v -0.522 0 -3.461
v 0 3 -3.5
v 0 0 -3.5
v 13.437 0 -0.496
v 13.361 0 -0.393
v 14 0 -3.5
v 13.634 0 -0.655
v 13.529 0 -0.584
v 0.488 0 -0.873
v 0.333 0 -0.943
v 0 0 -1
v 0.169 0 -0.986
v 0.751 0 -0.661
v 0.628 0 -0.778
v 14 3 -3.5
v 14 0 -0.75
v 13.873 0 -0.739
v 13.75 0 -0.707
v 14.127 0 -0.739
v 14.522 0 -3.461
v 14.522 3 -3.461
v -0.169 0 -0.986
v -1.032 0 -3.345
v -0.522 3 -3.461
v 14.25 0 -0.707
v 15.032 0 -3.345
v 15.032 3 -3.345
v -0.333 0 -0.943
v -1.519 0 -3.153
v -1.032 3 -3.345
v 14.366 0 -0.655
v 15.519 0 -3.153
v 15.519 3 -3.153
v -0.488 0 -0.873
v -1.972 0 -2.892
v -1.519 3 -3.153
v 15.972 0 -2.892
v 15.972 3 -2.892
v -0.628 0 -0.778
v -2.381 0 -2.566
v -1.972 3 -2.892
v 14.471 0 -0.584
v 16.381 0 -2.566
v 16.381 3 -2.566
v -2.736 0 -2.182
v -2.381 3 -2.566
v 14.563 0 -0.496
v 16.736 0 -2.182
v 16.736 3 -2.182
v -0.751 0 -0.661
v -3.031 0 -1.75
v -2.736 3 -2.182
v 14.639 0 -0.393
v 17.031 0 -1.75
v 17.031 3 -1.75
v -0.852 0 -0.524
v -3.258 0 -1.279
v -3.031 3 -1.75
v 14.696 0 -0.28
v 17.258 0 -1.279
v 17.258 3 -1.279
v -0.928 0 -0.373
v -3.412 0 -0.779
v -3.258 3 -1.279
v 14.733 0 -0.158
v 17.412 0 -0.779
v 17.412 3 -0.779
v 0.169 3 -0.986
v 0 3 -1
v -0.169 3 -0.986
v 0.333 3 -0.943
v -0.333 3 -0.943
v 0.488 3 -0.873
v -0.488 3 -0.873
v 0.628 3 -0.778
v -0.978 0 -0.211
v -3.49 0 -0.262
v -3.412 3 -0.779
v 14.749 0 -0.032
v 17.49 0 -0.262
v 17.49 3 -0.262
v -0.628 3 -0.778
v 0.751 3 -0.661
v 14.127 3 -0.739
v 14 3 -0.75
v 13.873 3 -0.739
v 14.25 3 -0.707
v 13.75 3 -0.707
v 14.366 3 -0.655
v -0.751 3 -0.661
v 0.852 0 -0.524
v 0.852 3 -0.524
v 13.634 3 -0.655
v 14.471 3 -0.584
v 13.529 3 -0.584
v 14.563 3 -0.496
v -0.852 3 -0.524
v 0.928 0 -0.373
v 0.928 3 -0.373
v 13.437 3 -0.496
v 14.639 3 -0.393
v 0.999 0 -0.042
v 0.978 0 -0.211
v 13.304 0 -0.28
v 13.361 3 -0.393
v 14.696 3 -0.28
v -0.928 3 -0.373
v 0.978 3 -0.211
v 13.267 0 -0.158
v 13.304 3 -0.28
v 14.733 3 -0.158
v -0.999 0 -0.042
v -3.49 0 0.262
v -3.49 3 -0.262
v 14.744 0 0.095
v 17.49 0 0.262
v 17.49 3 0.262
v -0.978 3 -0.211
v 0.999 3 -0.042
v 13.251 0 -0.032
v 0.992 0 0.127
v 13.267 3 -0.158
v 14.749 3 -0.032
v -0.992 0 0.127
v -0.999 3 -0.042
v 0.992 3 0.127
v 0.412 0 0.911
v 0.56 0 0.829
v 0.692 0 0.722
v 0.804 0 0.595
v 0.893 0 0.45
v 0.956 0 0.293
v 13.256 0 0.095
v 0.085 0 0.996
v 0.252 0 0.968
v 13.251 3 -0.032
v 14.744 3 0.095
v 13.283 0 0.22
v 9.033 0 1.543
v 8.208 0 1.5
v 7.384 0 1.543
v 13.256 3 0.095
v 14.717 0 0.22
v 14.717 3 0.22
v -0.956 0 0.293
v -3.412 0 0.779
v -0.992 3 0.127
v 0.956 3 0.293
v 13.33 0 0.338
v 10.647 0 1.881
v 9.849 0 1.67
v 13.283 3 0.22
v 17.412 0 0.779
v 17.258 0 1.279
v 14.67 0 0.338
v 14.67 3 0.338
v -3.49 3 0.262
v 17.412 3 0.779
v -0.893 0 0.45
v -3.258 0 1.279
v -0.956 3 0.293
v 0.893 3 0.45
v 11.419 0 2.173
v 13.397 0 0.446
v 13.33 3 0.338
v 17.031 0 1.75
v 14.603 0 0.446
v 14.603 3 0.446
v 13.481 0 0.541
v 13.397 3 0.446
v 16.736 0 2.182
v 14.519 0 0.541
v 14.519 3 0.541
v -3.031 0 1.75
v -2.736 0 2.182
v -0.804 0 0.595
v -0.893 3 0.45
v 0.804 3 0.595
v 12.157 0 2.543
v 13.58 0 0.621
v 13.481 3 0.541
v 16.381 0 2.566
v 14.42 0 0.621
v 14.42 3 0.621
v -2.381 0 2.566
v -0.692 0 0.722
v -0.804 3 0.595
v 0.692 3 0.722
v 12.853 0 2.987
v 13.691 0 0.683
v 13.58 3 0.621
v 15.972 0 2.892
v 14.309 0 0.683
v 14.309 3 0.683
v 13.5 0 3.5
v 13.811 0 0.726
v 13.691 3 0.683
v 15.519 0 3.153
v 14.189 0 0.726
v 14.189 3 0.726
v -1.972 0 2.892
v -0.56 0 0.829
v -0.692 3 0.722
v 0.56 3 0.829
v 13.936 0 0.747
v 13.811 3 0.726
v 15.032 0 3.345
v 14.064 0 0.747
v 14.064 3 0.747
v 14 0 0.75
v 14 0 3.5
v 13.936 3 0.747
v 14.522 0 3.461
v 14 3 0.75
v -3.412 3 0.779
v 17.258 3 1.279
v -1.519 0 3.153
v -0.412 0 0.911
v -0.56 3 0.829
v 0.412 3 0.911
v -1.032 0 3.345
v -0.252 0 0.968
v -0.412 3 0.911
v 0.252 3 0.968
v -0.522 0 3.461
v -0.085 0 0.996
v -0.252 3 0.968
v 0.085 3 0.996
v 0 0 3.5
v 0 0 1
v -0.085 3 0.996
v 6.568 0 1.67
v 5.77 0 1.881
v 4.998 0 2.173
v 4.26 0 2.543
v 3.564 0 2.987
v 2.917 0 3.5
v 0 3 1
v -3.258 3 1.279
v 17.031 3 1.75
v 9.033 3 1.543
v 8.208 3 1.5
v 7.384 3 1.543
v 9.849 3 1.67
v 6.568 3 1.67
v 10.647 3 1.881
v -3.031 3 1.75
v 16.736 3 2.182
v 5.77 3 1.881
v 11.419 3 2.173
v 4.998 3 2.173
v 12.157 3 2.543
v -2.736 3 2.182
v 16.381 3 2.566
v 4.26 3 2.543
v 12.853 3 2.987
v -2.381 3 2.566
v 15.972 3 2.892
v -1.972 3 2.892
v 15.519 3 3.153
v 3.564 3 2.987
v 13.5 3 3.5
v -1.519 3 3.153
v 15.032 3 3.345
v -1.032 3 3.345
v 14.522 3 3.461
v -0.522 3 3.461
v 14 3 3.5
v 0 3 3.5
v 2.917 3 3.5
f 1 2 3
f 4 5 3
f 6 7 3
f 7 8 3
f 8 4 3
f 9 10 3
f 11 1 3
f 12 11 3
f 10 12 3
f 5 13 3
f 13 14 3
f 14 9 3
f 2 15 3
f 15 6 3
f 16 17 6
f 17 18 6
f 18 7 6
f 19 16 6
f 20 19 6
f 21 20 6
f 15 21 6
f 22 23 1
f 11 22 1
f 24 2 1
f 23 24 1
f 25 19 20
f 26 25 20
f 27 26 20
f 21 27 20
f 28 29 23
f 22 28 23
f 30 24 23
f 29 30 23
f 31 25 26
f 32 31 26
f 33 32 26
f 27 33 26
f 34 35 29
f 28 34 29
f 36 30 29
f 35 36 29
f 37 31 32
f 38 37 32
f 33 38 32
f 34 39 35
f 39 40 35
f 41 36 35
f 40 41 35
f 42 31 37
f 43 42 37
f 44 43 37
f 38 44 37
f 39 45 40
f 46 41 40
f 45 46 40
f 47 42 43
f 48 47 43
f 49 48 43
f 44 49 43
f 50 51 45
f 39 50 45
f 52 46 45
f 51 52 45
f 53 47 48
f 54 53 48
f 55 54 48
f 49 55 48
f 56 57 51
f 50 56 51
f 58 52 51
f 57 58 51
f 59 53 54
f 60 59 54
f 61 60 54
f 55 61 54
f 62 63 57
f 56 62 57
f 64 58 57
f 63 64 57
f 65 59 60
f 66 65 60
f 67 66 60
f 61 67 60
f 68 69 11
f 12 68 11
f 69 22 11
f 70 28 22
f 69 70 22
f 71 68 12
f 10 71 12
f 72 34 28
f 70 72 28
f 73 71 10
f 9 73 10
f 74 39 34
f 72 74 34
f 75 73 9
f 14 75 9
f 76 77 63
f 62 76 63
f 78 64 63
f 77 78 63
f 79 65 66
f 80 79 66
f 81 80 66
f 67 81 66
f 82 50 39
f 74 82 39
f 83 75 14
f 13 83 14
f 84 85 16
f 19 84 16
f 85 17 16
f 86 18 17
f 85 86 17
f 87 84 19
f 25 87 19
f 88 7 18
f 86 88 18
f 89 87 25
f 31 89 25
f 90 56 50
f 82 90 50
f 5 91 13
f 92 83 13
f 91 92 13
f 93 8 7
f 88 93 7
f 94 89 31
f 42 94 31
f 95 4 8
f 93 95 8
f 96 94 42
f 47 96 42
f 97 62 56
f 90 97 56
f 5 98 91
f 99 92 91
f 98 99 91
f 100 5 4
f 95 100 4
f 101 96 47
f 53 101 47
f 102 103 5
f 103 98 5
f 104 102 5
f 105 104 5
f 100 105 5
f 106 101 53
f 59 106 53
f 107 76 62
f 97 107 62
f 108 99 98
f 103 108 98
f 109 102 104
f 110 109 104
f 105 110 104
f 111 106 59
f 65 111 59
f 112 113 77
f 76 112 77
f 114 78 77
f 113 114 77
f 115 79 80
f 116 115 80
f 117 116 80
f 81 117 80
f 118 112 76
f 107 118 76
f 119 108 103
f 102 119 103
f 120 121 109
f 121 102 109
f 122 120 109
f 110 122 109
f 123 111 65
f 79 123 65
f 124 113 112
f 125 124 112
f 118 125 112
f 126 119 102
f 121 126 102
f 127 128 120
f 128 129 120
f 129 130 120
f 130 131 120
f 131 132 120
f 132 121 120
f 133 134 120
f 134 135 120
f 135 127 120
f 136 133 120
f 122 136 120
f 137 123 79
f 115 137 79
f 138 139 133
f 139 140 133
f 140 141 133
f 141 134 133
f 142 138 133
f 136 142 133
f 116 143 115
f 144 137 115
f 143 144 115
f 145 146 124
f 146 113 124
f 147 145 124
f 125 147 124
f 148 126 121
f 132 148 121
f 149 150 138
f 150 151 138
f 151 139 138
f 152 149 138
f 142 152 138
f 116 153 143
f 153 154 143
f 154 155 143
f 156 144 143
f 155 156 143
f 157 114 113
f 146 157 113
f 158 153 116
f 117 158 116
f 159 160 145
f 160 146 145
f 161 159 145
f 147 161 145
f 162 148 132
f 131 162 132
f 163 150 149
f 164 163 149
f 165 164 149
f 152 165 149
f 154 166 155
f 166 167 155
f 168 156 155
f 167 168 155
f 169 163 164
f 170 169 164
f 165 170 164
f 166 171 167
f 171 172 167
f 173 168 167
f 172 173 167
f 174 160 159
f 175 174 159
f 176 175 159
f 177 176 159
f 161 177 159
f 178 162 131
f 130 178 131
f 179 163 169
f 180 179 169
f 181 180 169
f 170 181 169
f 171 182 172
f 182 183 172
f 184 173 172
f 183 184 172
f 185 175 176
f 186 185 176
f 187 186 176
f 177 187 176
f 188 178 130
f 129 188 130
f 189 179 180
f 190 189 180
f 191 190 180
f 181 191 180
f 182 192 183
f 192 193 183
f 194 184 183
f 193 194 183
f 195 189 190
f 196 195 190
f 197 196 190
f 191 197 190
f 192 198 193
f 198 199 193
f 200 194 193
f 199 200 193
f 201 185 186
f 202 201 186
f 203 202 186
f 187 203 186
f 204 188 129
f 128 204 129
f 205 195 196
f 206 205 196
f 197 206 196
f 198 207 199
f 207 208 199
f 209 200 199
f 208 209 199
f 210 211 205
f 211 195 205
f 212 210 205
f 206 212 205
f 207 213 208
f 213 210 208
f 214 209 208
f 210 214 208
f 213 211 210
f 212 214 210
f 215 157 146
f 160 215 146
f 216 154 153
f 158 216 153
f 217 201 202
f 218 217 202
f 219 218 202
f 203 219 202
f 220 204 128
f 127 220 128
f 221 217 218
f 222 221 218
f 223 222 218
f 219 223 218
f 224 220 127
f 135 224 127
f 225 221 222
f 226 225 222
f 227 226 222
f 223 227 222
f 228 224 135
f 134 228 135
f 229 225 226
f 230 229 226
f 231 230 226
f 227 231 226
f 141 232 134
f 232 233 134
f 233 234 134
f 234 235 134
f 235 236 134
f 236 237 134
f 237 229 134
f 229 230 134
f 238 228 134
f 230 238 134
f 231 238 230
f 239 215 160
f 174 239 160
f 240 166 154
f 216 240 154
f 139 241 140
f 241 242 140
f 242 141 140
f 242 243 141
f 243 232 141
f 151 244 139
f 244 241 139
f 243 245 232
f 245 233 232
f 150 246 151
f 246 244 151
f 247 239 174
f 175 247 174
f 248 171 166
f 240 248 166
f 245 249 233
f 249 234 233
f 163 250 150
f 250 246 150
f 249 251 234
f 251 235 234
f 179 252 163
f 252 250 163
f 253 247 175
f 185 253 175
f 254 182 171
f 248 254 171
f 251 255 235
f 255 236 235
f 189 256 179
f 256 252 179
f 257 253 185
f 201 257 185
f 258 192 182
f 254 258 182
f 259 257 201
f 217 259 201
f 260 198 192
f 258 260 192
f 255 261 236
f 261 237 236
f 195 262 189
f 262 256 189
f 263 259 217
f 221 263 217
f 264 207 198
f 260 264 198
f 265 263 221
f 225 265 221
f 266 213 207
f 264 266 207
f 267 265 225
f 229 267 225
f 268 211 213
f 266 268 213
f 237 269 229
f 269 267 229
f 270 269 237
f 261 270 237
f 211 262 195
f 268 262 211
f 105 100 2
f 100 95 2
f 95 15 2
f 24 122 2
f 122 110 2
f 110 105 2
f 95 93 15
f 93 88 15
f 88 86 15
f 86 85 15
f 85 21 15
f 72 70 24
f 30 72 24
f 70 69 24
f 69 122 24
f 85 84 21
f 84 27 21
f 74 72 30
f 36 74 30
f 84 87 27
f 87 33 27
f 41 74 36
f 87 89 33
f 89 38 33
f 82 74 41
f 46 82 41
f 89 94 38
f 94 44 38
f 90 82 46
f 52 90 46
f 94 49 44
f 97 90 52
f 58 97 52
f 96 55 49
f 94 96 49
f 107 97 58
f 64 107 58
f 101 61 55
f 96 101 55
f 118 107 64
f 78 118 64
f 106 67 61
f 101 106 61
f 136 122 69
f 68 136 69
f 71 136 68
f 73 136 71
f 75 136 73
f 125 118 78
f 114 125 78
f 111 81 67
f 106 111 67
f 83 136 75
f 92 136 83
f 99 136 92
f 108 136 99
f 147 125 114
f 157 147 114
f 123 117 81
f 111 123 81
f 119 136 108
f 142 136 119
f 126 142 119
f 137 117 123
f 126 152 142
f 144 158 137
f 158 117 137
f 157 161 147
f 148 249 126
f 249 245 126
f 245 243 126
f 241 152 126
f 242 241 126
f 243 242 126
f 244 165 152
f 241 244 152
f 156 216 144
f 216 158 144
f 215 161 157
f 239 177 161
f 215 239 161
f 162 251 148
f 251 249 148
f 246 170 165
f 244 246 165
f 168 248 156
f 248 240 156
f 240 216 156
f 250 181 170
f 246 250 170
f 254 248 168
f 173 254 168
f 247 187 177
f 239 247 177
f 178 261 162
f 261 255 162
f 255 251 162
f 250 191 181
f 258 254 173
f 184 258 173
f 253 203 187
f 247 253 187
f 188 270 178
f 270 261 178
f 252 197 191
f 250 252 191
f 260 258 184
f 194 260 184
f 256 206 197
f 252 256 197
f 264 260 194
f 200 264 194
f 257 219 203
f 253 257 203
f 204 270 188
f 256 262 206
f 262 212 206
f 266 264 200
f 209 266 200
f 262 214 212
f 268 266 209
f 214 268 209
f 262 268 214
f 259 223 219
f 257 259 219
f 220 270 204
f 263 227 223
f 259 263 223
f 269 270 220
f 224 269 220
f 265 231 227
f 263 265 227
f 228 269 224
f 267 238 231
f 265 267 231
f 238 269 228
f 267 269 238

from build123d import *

# Parameters (mm, degrees)
SKETCH1_R           = 0.75
SKETCH1_R_2         = 1
BOSS_EXTRUDE1_DEPTH = 3
CUT_EXTRUDE1_DEPTH  = 10


with BuildPart() as part:
    # Sketch1 → Boss-Extrude1 (new body)
    with BuildSketch(Plane(origin=(0, 0, 0), x_dir=(1, 0, 0), z_dir=(0, 1, 0))):
        with BuildLine():
            Line((0, 3.5), (14, 3.5))
            ThreePointArc((14, 3.5), (17.5, 0), (14, -3.5))
            Line((14, -3.5), (0, -3.5))
            ThreePointArc((0, -3.5), (-3.5, 0), (0, 3.5))
        make_face()
        with Locations((14, 0)):
            Circle(SKETCH1_R, mode=Mode.SUBTRACT)
        Circle(SKETCH1_R_2, mode=Mode.SUBTRACT)
    extrude(amount=BOSS_EXTRUDE1_DEPTH)

    # Sketch2 → Cut-Extrude1 (cut)
    with BuildSketch(Plane(origin=(0, 3, 0), x_dir=(1, 0, 0), z_dir=(0, 1, 0))):
        with BuildLine():
            Line((2.916994756, -3.5), (13.5, -3.5))
            ThreePointArc((13.5, -3.5), (8.208497378, -1.5), (2.916994756, -3.5))
        make_face()
    extrude(amount=-CUT_EXTRUDE1_DEPTH, mode=Mode.SUBTRACT)


solid = part.part
